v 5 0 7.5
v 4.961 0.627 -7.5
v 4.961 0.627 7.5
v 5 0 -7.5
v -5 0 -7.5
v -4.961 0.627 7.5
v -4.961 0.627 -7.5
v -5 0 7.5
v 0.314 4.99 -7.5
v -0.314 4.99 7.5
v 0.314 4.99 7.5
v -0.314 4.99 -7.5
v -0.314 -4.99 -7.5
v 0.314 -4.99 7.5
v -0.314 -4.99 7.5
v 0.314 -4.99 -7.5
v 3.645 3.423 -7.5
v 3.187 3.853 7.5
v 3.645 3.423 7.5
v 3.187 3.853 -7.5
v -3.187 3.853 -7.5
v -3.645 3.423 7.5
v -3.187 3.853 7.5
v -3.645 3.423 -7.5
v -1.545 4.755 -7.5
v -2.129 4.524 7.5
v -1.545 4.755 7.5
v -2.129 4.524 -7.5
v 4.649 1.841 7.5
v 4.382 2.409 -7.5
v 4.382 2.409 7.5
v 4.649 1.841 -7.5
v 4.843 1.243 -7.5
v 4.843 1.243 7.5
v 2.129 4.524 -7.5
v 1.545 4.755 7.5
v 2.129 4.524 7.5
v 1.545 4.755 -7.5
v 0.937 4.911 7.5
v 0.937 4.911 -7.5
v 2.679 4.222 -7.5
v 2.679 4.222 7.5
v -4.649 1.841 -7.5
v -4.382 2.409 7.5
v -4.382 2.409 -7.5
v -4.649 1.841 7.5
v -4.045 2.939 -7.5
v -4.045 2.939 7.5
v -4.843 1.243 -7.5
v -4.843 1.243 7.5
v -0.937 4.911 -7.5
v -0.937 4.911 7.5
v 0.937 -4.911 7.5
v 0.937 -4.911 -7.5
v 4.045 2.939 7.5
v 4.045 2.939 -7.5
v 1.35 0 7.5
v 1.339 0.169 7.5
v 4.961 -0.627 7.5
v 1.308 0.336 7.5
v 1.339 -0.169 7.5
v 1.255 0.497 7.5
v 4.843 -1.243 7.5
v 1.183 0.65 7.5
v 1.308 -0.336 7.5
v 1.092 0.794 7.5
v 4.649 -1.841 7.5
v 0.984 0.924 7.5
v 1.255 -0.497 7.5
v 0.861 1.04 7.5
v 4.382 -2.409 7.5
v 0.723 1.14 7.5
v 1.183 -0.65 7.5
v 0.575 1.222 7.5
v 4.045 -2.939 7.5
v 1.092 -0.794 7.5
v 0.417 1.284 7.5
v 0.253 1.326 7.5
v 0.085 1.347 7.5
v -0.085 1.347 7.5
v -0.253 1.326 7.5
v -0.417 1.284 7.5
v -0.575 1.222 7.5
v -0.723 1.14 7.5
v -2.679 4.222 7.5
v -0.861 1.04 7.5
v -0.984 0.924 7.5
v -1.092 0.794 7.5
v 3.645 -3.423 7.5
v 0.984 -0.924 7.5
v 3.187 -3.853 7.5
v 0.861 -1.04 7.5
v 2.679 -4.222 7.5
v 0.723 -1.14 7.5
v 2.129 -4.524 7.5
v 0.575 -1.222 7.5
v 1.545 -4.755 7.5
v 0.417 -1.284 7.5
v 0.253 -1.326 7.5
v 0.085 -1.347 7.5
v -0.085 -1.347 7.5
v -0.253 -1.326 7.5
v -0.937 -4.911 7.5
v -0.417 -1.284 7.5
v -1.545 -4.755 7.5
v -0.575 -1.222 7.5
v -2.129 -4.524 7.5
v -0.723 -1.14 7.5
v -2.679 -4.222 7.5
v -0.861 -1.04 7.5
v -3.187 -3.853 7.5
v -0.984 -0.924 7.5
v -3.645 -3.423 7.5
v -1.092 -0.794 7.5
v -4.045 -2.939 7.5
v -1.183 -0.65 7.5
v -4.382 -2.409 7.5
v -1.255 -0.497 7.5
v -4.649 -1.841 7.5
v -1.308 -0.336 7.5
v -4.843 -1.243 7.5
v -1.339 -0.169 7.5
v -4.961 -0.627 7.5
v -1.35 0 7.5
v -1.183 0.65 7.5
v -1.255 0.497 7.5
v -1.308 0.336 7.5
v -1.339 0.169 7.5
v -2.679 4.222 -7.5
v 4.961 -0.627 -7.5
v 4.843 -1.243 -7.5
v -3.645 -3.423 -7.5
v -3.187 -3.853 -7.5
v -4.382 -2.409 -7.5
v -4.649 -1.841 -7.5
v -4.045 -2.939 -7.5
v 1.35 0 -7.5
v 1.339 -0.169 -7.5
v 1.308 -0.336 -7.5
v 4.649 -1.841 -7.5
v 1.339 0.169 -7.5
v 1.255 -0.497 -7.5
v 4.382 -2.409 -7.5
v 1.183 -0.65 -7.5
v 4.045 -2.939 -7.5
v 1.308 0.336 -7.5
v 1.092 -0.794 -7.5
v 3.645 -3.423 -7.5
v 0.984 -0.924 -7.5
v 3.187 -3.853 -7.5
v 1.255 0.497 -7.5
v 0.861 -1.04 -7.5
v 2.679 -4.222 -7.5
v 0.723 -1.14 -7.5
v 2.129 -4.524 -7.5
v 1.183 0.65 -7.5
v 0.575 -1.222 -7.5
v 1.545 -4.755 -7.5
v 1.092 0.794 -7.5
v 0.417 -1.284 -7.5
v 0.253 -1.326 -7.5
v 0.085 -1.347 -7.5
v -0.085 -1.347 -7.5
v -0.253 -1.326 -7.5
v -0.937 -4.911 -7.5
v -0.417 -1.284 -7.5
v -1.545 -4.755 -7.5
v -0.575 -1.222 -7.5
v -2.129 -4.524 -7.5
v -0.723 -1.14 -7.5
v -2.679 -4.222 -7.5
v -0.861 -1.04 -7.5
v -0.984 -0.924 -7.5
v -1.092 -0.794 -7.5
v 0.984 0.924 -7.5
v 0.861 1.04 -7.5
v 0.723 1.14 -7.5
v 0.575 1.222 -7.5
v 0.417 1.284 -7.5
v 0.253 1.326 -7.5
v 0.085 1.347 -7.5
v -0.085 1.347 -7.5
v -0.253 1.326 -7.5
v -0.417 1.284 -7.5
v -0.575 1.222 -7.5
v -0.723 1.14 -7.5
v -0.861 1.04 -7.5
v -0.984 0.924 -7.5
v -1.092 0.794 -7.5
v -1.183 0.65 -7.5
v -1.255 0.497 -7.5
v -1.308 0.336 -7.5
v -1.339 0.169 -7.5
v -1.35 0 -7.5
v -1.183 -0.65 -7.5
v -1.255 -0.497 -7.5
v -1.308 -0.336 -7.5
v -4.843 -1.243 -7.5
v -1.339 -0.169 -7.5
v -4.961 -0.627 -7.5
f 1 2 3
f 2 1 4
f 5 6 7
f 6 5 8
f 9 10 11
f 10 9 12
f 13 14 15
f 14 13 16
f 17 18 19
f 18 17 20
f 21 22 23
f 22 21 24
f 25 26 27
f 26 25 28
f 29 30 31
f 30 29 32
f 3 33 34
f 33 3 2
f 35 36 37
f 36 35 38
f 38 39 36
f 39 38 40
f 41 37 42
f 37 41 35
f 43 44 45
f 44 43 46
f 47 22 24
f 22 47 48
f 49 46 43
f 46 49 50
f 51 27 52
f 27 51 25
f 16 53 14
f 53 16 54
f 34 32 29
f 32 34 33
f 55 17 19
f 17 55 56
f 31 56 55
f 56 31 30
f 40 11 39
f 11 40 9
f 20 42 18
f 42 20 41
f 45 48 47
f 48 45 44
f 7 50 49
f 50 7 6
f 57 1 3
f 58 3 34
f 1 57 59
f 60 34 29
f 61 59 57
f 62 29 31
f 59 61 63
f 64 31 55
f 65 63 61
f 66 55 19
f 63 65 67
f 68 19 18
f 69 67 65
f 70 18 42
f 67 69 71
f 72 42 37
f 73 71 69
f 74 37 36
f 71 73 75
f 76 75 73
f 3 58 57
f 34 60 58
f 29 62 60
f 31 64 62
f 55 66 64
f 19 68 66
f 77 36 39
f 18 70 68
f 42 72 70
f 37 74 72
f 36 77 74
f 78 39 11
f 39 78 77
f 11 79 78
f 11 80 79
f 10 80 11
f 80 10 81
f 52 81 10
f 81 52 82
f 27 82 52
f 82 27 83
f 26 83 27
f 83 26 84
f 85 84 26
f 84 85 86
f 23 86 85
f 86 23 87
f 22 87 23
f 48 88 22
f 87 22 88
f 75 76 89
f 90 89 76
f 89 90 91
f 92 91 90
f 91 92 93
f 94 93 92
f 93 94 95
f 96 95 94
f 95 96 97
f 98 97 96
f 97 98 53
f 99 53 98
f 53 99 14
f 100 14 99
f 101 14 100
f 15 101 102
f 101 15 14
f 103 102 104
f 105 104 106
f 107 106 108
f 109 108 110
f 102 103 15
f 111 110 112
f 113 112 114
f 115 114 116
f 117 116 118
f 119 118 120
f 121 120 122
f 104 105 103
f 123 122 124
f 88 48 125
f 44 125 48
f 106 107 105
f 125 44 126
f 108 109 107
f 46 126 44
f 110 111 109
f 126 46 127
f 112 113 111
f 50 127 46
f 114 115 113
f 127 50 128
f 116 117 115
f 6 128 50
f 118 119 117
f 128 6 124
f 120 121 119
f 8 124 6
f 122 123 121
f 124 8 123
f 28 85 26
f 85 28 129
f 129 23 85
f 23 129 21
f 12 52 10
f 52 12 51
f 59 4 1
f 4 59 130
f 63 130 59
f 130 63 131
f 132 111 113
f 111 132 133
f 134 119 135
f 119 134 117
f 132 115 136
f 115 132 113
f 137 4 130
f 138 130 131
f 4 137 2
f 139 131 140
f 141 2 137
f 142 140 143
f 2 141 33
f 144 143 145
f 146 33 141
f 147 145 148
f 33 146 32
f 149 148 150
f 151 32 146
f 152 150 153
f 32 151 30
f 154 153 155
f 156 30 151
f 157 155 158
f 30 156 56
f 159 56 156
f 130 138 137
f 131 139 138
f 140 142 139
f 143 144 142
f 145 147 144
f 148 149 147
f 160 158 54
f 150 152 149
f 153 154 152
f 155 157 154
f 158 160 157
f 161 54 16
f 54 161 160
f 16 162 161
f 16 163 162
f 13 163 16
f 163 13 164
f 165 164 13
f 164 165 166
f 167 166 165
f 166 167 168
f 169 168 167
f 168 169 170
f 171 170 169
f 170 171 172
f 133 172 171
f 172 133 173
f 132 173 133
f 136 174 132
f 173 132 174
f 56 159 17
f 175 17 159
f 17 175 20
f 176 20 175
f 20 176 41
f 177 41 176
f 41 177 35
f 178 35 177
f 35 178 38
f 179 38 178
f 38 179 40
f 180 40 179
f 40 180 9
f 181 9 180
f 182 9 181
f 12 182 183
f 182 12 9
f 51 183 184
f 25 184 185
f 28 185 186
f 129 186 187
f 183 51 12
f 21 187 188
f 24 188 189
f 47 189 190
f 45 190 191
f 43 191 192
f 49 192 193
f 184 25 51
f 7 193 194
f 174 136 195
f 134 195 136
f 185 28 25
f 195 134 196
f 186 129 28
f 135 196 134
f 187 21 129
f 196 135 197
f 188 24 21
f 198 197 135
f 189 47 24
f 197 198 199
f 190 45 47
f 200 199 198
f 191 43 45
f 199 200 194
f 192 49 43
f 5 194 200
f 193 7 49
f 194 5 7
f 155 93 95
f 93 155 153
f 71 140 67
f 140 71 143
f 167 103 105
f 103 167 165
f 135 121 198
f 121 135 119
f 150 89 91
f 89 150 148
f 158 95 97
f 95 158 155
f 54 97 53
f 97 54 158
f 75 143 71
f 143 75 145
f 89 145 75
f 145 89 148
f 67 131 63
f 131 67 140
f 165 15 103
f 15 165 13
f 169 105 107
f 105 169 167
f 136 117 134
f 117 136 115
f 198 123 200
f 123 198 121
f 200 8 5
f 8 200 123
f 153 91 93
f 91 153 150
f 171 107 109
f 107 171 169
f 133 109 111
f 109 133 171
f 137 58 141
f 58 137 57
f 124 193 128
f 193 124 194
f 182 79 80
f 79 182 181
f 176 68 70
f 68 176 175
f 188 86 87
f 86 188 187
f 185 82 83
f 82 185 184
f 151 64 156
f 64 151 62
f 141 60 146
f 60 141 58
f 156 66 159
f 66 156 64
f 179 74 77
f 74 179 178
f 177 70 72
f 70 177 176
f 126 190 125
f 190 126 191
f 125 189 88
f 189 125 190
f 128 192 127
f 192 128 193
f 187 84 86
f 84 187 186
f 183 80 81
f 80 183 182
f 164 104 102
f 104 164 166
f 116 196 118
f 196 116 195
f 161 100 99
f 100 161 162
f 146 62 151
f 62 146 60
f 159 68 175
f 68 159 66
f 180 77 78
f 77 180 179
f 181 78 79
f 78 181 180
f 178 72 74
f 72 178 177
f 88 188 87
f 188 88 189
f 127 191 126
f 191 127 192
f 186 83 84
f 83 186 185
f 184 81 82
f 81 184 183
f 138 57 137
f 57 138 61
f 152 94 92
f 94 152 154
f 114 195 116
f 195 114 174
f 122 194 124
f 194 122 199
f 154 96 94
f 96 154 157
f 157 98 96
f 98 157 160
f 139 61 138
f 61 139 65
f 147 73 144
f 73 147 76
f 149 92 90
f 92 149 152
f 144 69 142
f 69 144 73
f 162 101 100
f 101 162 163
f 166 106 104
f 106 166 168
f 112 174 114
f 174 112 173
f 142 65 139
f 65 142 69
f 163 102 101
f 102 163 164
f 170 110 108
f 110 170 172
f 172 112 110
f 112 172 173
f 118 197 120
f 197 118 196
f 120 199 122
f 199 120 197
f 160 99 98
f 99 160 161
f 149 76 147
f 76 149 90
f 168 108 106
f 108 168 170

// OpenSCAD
$fn = 50;


difference() {
	union() {
		translate(v = [0, 0, -7.5000000000]) {
			cylinder(h = 15, r = 5.0000000000);
		}
	}
	union() {
		translate(v = [0, 0, -100.0000000000]) {
			cylinder(h = 200, r = 1.3500000000);
		}
	}
}
